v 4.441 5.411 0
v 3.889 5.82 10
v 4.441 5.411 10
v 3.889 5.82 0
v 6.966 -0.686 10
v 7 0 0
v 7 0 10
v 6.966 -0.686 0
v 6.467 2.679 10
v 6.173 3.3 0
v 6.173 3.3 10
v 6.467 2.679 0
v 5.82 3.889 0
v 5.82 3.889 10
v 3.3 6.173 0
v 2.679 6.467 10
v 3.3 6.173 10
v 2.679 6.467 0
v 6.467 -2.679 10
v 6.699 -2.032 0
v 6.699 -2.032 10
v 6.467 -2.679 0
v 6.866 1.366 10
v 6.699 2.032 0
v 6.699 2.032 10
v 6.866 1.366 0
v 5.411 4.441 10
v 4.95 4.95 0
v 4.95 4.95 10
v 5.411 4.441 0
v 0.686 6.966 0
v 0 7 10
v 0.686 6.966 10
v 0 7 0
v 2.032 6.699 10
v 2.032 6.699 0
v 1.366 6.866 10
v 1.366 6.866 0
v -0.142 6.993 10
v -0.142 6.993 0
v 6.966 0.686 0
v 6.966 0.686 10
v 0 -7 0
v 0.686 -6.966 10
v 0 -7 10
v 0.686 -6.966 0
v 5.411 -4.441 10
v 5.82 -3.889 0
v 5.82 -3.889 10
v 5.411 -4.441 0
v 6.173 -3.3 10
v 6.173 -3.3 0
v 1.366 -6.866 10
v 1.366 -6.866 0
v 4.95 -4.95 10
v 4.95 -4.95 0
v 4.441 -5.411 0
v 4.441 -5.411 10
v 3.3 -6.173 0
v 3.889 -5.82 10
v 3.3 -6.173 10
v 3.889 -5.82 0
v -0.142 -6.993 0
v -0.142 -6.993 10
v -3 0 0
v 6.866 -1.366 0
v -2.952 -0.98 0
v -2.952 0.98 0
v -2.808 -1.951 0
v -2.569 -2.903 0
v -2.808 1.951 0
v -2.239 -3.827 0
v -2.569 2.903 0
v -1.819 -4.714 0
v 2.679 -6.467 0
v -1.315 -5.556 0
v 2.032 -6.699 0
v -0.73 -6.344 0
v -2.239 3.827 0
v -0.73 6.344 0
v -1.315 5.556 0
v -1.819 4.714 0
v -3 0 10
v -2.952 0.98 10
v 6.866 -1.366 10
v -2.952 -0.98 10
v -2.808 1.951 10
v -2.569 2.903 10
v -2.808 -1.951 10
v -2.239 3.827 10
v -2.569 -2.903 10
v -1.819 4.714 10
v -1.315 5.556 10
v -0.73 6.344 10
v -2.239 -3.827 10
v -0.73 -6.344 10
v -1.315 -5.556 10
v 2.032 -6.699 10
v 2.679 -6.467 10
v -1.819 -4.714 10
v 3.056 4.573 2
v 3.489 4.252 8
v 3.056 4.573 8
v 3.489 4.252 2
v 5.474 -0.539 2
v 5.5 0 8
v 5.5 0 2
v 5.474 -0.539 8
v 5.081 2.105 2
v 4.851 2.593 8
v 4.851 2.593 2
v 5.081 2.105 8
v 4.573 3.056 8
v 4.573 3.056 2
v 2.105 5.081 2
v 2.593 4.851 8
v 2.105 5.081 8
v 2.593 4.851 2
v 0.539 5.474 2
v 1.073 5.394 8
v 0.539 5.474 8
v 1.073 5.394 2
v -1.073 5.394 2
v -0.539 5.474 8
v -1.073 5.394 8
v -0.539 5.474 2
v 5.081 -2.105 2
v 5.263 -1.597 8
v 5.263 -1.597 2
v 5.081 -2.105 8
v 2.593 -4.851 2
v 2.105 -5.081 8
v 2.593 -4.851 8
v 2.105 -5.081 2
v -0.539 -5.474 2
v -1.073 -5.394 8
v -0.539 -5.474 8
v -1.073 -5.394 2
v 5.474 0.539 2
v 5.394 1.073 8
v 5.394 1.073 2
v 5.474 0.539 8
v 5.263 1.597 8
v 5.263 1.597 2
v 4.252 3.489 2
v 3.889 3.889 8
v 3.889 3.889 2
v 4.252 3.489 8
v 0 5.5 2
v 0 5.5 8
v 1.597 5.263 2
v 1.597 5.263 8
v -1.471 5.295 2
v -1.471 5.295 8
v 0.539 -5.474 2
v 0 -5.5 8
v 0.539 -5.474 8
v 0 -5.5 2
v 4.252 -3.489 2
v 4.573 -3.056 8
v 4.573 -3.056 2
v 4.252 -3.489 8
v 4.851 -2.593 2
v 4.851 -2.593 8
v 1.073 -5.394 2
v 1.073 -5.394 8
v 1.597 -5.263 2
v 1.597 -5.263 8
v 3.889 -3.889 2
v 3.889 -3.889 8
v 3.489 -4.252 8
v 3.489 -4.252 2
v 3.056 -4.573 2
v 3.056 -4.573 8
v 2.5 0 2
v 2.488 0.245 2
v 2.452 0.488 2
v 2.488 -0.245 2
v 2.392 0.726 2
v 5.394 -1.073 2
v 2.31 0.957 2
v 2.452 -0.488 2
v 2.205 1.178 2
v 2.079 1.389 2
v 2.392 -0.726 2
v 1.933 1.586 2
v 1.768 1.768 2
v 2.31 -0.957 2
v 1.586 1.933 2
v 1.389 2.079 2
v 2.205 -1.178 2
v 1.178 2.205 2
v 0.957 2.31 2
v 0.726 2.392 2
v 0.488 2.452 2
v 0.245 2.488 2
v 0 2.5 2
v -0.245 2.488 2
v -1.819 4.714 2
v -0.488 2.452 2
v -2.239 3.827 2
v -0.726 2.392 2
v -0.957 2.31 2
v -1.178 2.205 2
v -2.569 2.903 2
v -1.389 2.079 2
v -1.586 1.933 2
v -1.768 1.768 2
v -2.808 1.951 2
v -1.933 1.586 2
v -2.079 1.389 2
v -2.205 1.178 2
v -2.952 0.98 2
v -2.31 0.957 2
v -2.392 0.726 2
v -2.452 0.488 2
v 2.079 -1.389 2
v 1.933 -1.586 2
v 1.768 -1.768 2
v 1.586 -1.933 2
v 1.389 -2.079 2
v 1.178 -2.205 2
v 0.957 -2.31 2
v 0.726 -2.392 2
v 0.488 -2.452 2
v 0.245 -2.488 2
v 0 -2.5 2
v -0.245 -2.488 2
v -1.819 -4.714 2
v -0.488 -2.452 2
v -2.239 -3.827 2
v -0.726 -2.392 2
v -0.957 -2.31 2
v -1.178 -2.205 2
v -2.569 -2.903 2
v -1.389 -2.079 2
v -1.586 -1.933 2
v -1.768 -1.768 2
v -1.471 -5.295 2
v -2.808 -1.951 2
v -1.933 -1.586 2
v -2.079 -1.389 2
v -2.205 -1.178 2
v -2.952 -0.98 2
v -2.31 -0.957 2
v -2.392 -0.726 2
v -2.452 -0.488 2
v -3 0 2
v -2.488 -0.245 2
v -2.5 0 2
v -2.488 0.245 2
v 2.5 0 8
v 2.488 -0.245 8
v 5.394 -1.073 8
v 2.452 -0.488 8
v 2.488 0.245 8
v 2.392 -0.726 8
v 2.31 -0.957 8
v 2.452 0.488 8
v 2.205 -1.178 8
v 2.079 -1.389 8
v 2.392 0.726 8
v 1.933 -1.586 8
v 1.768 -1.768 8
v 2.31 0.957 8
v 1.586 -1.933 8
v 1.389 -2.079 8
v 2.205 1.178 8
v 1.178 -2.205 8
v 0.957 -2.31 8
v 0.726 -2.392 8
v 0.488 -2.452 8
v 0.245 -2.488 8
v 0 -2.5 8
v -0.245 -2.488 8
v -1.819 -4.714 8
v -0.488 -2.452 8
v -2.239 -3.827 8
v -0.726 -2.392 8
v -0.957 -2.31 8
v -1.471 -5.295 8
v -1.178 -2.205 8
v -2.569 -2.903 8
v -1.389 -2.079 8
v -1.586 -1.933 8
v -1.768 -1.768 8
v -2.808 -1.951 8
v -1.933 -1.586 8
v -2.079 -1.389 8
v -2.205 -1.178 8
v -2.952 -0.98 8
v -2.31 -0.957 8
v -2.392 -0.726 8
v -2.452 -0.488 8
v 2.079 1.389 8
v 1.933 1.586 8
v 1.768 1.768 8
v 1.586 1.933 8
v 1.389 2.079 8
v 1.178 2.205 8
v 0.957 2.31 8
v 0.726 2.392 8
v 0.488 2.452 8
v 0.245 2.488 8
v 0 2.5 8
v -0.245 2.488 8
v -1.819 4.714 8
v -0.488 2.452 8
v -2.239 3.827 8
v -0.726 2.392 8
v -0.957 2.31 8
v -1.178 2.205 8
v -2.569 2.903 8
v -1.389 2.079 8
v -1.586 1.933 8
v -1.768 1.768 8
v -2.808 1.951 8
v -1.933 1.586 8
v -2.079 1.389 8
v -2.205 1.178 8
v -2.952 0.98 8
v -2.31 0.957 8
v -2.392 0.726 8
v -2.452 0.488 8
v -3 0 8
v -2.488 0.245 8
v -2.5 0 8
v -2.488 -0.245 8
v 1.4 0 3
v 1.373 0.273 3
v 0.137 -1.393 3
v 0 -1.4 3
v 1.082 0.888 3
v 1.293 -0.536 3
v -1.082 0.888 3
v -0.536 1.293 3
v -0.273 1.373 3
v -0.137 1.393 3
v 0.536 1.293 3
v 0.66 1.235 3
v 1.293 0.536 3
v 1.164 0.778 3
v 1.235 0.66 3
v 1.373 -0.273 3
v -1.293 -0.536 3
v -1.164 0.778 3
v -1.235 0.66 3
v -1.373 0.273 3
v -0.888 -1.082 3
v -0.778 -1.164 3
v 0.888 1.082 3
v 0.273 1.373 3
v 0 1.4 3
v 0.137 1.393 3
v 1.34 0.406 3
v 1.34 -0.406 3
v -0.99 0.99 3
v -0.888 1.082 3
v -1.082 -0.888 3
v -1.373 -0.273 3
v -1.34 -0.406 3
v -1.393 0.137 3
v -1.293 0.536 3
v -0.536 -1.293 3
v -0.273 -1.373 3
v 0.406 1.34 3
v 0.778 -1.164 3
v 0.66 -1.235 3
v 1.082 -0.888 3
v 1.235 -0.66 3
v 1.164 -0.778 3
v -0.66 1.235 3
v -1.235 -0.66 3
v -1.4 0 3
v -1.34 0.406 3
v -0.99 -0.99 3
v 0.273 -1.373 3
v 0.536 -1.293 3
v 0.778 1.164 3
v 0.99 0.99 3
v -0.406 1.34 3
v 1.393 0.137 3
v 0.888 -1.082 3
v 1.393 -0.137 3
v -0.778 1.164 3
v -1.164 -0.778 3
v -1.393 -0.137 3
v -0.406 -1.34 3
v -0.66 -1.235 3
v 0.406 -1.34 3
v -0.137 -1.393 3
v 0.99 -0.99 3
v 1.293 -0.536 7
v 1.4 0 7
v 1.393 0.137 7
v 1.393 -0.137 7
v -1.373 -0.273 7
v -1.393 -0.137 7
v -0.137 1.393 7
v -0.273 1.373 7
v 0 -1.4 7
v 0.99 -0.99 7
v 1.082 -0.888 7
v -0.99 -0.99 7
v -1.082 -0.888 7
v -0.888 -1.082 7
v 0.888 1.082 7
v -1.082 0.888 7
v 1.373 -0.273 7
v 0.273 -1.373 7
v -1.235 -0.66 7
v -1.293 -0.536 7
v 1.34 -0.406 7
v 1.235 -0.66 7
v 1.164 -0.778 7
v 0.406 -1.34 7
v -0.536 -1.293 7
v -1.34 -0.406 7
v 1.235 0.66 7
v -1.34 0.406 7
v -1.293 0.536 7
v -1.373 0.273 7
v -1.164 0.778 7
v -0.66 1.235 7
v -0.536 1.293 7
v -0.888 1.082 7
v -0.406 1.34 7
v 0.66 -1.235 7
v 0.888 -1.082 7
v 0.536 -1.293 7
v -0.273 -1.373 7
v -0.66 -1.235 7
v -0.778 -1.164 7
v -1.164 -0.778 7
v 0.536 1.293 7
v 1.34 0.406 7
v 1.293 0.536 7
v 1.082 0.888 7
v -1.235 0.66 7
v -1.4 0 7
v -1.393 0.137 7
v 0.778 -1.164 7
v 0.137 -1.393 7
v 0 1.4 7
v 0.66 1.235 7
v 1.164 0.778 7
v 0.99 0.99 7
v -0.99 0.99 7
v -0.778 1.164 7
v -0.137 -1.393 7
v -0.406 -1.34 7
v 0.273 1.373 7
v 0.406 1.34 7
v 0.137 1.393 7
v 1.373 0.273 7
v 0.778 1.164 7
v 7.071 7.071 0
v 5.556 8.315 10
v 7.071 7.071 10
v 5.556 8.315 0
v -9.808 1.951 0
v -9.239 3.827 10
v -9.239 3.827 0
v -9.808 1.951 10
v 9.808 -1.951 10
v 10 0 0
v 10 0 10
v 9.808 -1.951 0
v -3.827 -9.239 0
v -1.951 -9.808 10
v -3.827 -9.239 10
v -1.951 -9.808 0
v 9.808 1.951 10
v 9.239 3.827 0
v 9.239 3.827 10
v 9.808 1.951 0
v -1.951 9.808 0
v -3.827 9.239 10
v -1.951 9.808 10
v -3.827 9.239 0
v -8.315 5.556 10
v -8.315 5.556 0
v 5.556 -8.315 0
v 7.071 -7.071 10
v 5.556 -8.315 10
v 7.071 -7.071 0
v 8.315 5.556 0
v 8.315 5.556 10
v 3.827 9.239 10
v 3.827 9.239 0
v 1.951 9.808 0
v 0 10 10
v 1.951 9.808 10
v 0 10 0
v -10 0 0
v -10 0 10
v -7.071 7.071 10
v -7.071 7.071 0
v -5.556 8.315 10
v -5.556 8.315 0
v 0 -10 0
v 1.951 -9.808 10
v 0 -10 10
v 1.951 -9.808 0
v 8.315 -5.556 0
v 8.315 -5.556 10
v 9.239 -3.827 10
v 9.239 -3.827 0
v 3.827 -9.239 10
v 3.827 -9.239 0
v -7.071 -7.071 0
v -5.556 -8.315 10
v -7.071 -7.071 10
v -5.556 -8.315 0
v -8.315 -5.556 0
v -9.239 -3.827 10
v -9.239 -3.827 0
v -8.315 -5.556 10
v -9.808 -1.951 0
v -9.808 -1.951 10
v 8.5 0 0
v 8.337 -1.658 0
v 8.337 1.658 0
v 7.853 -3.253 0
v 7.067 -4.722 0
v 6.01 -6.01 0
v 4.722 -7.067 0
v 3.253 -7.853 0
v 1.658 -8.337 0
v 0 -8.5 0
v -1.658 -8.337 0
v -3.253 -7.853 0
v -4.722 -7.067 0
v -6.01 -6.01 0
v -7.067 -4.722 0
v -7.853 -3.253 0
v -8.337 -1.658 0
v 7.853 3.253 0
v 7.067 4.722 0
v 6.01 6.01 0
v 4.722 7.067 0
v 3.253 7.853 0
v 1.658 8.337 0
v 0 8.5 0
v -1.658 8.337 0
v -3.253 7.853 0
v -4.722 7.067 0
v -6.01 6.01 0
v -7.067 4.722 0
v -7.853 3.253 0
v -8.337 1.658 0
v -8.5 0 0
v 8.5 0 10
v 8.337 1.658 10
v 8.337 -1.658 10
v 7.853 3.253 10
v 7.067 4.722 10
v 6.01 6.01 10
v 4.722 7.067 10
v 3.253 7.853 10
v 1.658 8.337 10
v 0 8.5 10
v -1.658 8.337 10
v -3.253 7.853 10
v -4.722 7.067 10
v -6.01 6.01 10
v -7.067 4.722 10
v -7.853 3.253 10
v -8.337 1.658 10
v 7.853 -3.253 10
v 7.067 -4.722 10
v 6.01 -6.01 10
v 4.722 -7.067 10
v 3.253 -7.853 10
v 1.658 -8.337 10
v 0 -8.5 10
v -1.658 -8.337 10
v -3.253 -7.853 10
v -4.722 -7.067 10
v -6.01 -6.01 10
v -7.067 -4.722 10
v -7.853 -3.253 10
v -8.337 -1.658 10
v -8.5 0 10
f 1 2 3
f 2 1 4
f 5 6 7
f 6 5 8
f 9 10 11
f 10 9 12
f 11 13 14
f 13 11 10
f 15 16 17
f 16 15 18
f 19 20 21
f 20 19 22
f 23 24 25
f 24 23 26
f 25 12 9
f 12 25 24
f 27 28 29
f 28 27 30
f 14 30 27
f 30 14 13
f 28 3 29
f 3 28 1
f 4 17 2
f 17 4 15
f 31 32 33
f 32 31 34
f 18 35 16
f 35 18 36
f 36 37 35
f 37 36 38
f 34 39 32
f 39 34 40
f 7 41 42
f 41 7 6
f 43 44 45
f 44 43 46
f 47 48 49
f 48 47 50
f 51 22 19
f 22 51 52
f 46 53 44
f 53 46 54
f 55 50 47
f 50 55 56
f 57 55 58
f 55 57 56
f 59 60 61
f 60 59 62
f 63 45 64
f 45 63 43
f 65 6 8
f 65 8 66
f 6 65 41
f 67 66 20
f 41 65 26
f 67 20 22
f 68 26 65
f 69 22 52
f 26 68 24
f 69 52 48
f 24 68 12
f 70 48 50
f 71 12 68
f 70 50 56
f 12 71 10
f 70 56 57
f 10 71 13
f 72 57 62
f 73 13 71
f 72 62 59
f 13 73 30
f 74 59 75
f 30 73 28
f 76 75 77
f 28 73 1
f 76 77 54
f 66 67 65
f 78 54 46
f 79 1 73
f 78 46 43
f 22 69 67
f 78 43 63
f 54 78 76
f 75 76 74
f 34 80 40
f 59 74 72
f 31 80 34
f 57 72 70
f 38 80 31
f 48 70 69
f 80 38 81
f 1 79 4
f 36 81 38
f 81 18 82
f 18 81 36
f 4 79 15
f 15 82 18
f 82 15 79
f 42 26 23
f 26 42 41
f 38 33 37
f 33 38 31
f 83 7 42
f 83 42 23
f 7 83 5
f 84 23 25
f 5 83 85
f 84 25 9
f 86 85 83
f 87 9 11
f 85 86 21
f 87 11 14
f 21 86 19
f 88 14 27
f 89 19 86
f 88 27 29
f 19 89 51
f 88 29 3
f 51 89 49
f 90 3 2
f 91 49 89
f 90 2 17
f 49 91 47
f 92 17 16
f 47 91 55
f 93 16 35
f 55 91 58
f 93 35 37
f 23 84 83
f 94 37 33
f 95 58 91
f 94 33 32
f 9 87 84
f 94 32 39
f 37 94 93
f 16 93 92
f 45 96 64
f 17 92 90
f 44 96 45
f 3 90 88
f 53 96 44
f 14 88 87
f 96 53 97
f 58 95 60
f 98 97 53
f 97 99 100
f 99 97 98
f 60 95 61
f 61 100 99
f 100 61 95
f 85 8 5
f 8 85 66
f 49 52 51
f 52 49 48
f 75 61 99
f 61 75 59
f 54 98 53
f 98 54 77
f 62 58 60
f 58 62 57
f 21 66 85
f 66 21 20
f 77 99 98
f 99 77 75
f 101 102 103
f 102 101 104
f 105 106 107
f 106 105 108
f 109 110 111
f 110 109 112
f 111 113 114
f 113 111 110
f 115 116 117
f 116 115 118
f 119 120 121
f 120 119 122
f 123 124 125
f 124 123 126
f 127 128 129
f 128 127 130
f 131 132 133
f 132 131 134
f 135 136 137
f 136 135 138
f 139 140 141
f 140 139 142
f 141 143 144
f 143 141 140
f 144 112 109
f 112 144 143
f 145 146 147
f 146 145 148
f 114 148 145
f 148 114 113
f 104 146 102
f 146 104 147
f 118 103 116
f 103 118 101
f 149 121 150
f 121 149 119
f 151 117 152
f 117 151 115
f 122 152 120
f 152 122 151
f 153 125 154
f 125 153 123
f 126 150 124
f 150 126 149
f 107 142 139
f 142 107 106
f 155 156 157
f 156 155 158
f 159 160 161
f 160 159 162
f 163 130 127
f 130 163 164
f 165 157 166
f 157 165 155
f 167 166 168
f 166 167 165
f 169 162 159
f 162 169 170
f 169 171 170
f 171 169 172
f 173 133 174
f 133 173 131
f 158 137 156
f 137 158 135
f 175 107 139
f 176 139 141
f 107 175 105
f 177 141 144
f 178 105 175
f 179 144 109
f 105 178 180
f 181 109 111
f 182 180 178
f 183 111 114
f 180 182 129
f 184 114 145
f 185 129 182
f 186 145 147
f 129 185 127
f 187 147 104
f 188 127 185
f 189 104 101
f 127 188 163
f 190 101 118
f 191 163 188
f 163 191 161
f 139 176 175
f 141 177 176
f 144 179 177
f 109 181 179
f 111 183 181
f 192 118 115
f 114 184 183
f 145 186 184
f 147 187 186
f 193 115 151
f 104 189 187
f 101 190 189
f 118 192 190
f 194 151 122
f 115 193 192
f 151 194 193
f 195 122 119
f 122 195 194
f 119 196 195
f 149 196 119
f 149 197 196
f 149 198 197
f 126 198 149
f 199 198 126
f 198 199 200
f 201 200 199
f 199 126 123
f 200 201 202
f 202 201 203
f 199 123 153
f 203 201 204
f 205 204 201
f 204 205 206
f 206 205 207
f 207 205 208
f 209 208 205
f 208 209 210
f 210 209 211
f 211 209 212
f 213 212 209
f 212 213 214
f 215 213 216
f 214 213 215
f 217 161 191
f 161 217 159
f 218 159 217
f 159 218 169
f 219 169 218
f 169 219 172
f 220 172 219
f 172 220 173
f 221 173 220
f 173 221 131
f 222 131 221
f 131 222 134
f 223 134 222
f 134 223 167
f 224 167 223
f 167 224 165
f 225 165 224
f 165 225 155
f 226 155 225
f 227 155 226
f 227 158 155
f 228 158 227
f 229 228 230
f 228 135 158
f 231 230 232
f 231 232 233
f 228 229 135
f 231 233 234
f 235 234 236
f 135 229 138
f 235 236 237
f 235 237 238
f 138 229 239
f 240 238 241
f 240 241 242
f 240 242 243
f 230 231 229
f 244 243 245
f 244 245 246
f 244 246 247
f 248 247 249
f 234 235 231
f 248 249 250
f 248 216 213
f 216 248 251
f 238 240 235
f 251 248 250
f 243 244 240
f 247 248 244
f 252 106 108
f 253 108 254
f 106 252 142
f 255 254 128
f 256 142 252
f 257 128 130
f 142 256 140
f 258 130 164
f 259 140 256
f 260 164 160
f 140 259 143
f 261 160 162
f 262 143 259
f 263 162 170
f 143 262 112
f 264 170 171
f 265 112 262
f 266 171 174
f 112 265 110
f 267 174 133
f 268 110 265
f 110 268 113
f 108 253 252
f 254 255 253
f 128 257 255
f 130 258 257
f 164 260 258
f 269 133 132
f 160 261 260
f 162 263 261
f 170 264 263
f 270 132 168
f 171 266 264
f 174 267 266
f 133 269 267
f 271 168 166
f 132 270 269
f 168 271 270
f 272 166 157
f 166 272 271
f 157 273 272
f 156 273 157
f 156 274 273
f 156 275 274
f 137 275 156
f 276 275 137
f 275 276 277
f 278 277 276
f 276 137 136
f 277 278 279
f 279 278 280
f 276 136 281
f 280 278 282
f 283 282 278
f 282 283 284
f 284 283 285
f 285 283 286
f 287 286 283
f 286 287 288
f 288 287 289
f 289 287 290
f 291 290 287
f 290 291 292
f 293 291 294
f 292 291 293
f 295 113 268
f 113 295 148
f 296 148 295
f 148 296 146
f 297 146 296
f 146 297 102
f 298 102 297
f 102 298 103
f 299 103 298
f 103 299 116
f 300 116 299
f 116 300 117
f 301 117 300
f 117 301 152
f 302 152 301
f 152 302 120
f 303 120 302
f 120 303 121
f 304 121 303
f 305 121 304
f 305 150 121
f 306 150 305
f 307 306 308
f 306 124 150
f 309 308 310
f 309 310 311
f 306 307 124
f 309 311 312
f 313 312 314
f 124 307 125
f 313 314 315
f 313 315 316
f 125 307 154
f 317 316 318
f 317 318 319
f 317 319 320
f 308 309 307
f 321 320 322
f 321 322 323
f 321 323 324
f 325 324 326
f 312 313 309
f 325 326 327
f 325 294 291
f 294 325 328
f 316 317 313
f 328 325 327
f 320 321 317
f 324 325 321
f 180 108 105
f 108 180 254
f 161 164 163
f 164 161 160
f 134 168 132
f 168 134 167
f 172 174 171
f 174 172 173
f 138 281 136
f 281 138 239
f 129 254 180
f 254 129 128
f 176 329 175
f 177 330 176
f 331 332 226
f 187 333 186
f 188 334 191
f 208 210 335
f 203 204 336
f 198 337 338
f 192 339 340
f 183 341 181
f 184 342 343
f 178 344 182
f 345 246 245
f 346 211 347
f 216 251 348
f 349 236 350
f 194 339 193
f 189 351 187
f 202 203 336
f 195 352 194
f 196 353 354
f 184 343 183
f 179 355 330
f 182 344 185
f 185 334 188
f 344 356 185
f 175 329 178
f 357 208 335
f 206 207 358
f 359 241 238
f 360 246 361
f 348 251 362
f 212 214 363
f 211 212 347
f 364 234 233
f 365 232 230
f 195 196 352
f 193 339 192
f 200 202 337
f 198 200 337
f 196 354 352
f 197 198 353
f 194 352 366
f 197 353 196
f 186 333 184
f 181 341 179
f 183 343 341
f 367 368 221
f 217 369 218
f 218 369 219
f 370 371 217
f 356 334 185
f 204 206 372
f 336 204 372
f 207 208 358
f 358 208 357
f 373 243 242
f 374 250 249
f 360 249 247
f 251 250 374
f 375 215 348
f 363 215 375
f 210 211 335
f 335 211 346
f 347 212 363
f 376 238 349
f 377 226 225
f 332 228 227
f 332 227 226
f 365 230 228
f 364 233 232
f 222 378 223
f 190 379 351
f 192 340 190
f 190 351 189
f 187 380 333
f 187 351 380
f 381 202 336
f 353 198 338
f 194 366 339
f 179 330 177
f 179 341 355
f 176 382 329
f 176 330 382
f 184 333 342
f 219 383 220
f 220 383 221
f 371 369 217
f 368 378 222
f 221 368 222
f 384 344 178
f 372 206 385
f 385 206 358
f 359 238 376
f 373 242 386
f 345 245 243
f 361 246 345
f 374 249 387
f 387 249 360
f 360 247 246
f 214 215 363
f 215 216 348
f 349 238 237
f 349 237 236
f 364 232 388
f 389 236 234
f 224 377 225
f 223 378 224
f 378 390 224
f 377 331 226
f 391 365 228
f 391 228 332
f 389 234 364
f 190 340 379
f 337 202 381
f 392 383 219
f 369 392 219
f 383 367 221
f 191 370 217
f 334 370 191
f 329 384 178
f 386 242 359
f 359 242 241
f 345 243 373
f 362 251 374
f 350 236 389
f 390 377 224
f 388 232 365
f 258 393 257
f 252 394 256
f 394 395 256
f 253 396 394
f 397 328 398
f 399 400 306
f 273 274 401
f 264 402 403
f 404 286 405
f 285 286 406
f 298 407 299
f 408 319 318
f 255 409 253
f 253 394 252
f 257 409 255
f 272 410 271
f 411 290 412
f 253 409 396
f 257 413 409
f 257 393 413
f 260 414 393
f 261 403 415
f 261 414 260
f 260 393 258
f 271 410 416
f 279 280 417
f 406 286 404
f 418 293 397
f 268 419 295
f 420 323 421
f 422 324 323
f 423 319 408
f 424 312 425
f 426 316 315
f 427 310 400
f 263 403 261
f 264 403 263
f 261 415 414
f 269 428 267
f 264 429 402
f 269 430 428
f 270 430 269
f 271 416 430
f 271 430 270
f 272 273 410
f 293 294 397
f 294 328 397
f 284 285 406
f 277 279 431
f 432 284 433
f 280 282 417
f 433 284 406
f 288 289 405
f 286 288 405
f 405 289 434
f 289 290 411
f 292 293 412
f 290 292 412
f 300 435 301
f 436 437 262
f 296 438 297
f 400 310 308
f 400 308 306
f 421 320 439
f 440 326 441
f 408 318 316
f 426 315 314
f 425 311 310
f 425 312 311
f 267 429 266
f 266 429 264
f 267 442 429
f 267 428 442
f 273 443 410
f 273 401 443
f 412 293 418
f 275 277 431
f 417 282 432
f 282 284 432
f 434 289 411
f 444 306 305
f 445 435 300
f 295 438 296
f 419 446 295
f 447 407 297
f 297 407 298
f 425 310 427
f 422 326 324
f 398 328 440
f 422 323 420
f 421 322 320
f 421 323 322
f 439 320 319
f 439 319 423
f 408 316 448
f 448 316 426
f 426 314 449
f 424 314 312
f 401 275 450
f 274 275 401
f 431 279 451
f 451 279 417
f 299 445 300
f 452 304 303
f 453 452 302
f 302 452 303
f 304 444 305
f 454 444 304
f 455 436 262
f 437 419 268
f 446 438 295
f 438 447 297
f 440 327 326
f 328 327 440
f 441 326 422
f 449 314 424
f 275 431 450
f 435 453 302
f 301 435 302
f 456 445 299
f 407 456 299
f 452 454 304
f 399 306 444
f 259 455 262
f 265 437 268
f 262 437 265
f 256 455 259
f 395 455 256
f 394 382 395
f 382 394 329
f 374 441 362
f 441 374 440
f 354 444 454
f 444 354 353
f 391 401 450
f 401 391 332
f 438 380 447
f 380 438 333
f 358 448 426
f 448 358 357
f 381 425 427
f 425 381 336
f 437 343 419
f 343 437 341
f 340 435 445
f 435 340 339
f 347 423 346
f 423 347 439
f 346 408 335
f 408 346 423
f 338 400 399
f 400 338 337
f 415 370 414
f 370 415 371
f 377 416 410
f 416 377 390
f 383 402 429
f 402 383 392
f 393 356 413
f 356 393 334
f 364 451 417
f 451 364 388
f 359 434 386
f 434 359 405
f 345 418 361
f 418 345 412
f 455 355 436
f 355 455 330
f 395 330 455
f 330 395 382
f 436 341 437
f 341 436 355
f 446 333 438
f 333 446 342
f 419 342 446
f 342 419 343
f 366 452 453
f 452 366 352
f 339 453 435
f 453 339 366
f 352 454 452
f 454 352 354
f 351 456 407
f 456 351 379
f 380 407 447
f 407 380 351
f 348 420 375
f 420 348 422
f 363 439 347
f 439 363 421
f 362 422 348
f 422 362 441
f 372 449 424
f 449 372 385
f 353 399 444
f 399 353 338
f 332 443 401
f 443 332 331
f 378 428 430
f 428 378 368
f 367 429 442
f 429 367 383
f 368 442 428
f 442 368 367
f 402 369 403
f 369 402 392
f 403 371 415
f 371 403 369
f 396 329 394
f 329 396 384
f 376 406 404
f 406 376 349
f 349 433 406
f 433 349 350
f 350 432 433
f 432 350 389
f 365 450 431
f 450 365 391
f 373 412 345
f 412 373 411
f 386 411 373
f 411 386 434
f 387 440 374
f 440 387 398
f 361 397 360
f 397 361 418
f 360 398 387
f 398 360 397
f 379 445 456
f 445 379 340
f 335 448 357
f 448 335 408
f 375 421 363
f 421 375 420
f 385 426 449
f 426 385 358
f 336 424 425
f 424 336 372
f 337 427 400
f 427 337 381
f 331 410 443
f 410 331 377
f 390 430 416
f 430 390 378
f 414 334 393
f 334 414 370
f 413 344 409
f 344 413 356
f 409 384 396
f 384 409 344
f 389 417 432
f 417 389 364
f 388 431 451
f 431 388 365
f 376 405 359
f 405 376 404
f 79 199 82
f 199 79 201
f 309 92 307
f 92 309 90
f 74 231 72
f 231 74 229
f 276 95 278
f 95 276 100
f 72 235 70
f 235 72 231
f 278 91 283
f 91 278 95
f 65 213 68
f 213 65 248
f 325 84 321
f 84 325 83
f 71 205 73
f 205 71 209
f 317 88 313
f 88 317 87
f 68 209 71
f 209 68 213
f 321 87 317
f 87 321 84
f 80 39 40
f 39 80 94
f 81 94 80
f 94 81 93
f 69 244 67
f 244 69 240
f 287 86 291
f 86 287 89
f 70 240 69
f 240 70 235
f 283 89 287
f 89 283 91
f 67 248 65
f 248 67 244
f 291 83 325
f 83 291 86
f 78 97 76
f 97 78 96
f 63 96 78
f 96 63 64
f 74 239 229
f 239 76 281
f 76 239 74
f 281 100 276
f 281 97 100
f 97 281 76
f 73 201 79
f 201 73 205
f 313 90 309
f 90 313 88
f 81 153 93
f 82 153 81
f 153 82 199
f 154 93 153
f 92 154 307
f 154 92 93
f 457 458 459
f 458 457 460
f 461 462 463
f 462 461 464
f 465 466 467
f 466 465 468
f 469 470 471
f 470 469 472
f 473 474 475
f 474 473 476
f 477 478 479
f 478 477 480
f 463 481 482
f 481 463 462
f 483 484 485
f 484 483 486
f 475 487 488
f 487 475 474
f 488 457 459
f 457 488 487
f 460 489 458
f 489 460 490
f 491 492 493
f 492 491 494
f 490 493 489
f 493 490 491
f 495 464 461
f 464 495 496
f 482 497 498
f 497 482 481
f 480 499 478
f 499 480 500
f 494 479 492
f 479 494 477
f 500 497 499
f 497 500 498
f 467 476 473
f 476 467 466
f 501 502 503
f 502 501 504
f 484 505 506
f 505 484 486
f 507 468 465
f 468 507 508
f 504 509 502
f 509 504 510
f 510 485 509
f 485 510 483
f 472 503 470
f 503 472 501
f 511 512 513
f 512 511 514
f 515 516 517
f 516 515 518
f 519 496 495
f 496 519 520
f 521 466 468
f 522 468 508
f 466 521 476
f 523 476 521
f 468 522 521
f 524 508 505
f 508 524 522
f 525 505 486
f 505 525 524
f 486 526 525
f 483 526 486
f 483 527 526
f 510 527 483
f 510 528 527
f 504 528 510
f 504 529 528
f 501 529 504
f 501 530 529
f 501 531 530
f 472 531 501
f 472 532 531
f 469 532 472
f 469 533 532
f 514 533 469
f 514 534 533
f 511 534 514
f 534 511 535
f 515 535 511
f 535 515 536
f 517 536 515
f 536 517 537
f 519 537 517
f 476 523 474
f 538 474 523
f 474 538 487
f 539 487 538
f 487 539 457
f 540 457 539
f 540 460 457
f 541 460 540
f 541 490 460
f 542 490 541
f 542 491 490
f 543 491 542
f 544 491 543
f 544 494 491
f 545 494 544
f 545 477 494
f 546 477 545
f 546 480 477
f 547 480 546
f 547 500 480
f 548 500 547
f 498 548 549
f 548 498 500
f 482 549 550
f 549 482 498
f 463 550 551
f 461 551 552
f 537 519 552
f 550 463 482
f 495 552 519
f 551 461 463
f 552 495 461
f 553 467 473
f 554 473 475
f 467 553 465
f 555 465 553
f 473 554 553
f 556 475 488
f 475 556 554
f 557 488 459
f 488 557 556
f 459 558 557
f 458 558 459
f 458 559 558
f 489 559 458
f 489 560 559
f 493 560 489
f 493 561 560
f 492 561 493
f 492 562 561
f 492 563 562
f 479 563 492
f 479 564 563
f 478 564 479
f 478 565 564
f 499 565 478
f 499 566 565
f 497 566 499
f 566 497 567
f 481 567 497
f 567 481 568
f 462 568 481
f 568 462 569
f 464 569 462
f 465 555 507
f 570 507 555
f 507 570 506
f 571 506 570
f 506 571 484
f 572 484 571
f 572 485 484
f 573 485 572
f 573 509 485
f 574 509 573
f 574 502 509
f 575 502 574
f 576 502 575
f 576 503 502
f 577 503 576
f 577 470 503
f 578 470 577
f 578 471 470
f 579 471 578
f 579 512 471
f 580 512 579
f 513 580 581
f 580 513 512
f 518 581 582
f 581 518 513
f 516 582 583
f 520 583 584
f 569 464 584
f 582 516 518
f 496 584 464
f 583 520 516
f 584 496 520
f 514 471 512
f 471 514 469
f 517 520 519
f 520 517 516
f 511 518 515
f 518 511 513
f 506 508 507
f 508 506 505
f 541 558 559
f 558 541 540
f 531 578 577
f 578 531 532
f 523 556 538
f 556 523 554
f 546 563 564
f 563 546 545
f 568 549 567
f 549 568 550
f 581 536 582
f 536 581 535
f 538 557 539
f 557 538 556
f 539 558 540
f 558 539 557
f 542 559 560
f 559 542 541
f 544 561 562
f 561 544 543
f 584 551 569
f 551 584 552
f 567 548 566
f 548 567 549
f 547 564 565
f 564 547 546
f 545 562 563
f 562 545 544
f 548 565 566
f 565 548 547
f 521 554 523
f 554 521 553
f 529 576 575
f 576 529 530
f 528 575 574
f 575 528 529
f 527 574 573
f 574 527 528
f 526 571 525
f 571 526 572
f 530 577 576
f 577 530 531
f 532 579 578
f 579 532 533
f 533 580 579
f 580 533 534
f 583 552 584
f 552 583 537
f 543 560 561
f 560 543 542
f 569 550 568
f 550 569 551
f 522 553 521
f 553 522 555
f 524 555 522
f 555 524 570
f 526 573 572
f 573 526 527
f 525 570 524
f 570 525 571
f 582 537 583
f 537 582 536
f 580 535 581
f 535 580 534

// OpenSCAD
intersection()
{
    union()
    {
        union()
        {
            difference()
            {
                cylinder(d=14, h = 10, $fn=64);
                translate([0,0,2])
                cylinder(d=11, h = 6, $fn=64);
                
            }
            translate([0,0,2])
            cylinder(d1=5,d2=2.8,h=1, $fn=64);
            translate([0,0,7])
            cylinder(d1=2.8, d2=5,h=1, $fn=64);

        }
        translate([0,0,0])
        cylinder(d=2.8, h = 10, $fn = 64);
    }
    translate([7,0,-1])
    cylinder(d=20, h=12, $fn=64);
}
difference()
{
    cylinder(d=20,h=10, $fn=32);
    translate([0,0,-1])
    cylinder(d=17,h=12, $fn=32);
}
